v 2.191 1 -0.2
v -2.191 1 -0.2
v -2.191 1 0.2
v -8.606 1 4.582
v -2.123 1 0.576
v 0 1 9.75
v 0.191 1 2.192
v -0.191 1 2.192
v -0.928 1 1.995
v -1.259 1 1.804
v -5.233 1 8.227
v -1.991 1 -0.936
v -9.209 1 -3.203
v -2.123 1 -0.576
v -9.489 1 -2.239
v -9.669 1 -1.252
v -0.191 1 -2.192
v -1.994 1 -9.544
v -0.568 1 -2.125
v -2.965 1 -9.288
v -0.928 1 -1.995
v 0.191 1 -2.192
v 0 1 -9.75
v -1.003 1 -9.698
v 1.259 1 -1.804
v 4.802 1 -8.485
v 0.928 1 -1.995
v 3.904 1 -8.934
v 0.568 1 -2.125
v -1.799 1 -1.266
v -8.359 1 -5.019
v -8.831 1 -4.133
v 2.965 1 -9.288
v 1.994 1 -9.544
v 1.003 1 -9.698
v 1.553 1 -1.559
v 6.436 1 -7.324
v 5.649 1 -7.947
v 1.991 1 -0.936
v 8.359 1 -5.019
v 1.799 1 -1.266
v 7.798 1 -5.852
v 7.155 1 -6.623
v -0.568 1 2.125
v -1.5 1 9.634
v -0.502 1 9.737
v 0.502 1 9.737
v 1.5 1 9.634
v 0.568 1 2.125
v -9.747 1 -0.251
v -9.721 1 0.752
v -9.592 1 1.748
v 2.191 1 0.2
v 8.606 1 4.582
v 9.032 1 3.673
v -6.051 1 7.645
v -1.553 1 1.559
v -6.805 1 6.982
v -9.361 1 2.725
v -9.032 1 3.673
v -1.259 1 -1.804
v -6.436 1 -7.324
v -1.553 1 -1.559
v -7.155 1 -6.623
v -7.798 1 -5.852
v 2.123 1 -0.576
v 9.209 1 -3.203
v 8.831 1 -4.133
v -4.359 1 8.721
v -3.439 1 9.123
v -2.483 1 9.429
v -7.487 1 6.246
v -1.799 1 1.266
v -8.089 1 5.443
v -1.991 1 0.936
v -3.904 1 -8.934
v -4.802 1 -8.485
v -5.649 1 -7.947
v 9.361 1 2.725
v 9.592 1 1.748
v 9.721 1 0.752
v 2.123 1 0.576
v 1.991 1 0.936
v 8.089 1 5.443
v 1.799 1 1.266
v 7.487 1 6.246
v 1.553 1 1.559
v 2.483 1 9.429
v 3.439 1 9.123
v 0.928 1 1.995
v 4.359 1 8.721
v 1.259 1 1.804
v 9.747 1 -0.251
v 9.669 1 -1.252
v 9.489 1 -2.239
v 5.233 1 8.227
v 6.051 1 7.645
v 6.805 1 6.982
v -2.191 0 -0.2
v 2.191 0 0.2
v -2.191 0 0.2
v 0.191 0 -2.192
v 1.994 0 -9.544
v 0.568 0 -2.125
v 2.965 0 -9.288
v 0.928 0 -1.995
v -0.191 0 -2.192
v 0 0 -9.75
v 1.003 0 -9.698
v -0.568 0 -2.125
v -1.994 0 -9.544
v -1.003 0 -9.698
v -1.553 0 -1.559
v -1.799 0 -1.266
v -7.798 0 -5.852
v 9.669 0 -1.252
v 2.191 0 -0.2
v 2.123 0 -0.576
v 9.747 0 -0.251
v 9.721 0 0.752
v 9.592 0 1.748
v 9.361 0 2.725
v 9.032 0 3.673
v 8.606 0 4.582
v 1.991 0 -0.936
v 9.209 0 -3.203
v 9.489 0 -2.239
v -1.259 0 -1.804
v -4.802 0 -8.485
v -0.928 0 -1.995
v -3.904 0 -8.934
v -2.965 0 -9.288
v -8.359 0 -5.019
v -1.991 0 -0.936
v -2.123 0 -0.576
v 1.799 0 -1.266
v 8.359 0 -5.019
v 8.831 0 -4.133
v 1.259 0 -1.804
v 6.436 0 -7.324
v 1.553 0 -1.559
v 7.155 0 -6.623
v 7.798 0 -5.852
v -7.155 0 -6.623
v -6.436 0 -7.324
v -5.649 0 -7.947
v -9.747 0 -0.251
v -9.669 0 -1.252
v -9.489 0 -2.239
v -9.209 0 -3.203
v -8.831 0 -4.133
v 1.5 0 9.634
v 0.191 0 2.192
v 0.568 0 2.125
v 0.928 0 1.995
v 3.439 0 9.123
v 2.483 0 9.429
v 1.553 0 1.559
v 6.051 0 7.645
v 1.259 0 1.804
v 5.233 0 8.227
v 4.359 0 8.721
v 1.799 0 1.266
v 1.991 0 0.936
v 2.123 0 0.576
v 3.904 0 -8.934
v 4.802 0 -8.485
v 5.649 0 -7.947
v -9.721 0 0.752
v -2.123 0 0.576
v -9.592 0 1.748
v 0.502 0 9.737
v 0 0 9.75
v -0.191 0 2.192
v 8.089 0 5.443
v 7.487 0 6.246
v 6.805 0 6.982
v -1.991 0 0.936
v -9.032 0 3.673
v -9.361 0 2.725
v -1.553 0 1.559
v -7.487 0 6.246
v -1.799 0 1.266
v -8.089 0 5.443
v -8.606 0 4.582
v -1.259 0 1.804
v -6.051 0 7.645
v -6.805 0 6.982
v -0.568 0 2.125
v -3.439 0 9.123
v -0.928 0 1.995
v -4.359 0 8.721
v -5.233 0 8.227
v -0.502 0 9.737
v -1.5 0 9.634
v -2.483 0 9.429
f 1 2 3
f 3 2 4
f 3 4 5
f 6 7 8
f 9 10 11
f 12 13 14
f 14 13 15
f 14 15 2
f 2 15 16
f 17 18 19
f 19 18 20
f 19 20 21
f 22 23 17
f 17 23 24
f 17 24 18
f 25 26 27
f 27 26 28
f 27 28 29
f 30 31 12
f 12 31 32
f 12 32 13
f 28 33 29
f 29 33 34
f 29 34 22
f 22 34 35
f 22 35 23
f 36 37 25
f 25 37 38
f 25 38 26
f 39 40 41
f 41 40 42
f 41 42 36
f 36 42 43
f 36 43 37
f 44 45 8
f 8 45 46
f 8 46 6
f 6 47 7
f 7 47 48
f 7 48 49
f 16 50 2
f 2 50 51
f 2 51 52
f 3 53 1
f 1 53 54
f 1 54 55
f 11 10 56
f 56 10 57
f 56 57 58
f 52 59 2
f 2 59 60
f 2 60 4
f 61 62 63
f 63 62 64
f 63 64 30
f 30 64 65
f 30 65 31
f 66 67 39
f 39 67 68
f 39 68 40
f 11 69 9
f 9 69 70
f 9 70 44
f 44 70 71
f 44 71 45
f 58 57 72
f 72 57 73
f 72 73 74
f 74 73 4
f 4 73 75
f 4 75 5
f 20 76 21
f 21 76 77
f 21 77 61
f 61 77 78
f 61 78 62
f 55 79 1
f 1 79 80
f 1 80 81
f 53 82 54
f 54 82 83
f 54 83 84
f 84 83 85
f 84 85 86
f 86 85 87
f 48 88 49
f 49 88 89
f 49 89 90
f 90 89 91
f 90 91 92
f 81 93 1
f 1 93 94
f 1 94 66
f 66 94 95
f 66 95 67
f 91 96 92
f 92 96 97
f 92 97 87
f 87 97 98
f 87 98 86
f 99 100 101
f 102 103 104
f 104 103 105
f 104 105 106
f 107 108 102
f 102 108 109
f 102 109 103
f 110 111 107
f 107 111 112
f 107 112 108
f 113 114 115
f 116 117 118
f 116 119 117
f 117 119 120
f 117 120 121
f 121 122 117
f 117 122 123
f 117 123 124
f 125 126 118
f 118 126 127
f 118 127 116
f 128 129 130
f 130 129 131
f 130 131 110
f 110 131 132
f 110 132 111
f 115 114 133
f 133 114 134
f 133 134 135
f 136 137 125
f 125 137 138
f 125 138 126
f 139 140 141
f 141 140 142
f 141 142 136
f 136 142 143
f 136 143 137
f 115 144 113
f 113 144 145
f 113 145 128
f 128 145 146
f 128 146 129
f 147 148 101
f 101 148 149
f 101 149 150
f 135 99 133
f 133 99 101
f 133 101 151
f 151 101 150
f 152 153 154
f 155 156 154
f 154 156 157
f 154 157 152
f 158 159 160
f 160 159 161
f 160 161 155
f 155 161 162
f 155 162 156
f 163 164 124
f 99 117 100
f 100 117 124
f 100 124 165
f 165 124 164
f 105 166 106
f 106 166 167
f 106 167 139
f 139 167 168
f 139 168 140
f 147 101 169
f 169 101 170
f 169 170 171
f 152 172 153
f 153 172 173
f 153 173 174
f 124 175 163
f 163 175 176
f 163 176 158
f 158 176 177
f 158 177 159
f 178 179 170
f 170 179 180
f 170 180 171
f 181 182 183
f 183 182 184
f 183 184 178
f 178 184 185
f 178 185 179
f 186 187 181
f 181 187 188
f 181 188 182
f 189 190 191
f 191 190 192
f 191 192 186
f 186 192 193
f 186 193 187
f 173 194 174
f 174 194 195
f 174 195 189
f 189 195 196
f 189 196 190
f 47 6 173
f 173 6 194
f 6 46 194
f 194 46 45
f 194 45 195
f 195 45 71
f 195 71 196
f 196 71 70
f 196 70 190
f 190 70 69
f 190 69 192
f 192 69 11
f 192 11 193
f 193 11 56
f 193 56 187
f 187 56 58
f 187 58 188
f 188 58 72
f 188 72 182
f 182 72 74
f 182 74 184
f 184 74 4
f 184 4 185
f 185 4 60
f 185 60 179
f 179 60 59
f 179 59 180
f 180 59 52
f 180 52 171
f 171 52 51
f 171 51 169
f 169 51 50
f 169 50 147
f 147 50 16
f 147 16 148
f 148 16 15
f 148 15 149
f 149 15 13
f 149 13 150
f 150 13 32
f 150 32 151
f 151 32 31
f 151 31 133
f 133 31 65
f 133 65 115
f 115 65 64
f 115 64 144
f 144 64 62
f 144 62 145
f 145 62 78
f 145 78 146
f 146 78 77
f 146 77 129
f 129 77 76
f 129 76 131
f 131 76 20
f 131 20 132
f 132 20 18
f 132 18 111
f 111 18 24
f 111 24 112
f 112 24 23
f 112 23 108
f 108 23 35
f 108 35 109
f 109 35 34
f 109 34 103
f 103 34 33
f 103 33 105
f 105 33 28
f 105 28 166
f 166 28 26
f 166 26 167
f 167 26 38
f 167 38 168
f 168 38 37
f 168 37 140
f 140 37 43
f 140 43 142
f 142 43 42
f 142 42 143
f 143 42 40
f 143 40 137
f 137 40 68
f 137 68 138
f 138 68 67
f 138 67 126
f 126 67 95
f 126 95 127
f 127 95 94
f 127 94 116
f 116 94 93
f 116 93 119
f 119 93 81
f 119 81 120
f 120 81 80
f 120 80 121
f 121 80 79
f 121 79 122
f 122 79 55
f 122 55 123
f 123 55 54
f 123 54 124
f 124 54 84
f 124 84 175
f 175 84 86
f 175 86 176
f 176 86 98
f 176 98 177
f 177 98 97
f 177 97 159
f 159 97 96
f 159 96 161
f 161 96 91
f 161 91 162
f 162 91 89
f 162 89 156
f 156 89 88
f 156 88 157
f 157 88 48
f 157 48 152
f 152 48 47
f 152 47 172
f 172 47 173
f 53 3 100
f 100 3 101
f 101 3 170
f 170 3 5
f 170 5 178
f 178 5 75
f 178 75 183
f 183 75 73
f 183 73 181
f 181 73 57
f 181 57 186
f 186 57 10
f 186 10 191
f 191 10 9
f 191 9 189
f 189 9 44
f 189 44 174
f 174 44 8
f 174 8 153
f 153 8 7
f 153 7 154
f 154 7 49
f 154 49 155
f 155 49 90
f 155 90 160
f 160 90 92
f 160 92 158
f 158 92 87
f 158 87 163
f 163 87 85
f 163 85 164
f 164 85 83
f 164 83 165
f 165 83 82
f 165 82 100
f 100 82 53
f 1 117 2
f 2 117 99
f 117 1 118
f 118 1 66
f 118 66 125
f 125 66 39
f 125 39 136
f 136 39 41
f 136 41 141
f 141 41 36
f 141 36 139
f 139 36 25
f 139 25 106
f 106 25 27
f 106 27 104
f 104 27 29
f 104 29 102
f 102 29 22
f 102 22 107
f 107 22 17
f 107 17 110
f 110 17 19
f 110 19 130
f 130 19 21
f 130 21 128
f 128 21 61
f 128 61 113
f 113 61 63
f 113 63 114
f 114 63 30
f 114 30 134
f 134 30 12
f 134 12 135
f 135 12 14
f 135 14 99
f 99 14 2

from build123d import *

# Parameters (mm, degrees)
SKETCH1_R           = 9.75
BOSS_EXTRUDE1_DEPTH = 1
CUT_EXTRUDE1_DEPTH  = 3


with BuildPart() as part:
    # Sketch1 → Boss-Extrude1 (new body)
    with BuildSketch(Plane(origin=(0, 0, 0), x_dir=(1, 0, 0), z_dir=(0, 1, 0))):
        with Locations(Location((0, 0, 0), (0, 0, 270))):
            Circle(SKETCH1_R)
    extrude(amount=BOSS_EXTRUDE1_DEPTH)

    # Sketch2 → Cut-Extrude1 (cut)
    with BuildSketch(Plane(origin=(0, 1, 0), x_dir=(1, 0, 0), z_dir=(0, 1, 0))):
        with BuildLine():
            Line((-2.19089023, 0.2), (0, 0.2))
            Line((0, 0.2), (2.19089023, 0.2))
            ThreePointArc((2.19089023, 0.2), (0, 2.2), (-2.19089023, 0.2))
        make_face()
        with BuildLine():
            Line((2.19089023, -0.2), (-2.19089023, -0.2))
            ThreePointArc((-2.19089023, -0.2), (0, -2.2), (2.19089023, -0.2))
        make_face()
    extrude(amount=-CUT_EXTRUDE1_DEPTH, mode=Mode.SUBTRACT)


solid = part.part
